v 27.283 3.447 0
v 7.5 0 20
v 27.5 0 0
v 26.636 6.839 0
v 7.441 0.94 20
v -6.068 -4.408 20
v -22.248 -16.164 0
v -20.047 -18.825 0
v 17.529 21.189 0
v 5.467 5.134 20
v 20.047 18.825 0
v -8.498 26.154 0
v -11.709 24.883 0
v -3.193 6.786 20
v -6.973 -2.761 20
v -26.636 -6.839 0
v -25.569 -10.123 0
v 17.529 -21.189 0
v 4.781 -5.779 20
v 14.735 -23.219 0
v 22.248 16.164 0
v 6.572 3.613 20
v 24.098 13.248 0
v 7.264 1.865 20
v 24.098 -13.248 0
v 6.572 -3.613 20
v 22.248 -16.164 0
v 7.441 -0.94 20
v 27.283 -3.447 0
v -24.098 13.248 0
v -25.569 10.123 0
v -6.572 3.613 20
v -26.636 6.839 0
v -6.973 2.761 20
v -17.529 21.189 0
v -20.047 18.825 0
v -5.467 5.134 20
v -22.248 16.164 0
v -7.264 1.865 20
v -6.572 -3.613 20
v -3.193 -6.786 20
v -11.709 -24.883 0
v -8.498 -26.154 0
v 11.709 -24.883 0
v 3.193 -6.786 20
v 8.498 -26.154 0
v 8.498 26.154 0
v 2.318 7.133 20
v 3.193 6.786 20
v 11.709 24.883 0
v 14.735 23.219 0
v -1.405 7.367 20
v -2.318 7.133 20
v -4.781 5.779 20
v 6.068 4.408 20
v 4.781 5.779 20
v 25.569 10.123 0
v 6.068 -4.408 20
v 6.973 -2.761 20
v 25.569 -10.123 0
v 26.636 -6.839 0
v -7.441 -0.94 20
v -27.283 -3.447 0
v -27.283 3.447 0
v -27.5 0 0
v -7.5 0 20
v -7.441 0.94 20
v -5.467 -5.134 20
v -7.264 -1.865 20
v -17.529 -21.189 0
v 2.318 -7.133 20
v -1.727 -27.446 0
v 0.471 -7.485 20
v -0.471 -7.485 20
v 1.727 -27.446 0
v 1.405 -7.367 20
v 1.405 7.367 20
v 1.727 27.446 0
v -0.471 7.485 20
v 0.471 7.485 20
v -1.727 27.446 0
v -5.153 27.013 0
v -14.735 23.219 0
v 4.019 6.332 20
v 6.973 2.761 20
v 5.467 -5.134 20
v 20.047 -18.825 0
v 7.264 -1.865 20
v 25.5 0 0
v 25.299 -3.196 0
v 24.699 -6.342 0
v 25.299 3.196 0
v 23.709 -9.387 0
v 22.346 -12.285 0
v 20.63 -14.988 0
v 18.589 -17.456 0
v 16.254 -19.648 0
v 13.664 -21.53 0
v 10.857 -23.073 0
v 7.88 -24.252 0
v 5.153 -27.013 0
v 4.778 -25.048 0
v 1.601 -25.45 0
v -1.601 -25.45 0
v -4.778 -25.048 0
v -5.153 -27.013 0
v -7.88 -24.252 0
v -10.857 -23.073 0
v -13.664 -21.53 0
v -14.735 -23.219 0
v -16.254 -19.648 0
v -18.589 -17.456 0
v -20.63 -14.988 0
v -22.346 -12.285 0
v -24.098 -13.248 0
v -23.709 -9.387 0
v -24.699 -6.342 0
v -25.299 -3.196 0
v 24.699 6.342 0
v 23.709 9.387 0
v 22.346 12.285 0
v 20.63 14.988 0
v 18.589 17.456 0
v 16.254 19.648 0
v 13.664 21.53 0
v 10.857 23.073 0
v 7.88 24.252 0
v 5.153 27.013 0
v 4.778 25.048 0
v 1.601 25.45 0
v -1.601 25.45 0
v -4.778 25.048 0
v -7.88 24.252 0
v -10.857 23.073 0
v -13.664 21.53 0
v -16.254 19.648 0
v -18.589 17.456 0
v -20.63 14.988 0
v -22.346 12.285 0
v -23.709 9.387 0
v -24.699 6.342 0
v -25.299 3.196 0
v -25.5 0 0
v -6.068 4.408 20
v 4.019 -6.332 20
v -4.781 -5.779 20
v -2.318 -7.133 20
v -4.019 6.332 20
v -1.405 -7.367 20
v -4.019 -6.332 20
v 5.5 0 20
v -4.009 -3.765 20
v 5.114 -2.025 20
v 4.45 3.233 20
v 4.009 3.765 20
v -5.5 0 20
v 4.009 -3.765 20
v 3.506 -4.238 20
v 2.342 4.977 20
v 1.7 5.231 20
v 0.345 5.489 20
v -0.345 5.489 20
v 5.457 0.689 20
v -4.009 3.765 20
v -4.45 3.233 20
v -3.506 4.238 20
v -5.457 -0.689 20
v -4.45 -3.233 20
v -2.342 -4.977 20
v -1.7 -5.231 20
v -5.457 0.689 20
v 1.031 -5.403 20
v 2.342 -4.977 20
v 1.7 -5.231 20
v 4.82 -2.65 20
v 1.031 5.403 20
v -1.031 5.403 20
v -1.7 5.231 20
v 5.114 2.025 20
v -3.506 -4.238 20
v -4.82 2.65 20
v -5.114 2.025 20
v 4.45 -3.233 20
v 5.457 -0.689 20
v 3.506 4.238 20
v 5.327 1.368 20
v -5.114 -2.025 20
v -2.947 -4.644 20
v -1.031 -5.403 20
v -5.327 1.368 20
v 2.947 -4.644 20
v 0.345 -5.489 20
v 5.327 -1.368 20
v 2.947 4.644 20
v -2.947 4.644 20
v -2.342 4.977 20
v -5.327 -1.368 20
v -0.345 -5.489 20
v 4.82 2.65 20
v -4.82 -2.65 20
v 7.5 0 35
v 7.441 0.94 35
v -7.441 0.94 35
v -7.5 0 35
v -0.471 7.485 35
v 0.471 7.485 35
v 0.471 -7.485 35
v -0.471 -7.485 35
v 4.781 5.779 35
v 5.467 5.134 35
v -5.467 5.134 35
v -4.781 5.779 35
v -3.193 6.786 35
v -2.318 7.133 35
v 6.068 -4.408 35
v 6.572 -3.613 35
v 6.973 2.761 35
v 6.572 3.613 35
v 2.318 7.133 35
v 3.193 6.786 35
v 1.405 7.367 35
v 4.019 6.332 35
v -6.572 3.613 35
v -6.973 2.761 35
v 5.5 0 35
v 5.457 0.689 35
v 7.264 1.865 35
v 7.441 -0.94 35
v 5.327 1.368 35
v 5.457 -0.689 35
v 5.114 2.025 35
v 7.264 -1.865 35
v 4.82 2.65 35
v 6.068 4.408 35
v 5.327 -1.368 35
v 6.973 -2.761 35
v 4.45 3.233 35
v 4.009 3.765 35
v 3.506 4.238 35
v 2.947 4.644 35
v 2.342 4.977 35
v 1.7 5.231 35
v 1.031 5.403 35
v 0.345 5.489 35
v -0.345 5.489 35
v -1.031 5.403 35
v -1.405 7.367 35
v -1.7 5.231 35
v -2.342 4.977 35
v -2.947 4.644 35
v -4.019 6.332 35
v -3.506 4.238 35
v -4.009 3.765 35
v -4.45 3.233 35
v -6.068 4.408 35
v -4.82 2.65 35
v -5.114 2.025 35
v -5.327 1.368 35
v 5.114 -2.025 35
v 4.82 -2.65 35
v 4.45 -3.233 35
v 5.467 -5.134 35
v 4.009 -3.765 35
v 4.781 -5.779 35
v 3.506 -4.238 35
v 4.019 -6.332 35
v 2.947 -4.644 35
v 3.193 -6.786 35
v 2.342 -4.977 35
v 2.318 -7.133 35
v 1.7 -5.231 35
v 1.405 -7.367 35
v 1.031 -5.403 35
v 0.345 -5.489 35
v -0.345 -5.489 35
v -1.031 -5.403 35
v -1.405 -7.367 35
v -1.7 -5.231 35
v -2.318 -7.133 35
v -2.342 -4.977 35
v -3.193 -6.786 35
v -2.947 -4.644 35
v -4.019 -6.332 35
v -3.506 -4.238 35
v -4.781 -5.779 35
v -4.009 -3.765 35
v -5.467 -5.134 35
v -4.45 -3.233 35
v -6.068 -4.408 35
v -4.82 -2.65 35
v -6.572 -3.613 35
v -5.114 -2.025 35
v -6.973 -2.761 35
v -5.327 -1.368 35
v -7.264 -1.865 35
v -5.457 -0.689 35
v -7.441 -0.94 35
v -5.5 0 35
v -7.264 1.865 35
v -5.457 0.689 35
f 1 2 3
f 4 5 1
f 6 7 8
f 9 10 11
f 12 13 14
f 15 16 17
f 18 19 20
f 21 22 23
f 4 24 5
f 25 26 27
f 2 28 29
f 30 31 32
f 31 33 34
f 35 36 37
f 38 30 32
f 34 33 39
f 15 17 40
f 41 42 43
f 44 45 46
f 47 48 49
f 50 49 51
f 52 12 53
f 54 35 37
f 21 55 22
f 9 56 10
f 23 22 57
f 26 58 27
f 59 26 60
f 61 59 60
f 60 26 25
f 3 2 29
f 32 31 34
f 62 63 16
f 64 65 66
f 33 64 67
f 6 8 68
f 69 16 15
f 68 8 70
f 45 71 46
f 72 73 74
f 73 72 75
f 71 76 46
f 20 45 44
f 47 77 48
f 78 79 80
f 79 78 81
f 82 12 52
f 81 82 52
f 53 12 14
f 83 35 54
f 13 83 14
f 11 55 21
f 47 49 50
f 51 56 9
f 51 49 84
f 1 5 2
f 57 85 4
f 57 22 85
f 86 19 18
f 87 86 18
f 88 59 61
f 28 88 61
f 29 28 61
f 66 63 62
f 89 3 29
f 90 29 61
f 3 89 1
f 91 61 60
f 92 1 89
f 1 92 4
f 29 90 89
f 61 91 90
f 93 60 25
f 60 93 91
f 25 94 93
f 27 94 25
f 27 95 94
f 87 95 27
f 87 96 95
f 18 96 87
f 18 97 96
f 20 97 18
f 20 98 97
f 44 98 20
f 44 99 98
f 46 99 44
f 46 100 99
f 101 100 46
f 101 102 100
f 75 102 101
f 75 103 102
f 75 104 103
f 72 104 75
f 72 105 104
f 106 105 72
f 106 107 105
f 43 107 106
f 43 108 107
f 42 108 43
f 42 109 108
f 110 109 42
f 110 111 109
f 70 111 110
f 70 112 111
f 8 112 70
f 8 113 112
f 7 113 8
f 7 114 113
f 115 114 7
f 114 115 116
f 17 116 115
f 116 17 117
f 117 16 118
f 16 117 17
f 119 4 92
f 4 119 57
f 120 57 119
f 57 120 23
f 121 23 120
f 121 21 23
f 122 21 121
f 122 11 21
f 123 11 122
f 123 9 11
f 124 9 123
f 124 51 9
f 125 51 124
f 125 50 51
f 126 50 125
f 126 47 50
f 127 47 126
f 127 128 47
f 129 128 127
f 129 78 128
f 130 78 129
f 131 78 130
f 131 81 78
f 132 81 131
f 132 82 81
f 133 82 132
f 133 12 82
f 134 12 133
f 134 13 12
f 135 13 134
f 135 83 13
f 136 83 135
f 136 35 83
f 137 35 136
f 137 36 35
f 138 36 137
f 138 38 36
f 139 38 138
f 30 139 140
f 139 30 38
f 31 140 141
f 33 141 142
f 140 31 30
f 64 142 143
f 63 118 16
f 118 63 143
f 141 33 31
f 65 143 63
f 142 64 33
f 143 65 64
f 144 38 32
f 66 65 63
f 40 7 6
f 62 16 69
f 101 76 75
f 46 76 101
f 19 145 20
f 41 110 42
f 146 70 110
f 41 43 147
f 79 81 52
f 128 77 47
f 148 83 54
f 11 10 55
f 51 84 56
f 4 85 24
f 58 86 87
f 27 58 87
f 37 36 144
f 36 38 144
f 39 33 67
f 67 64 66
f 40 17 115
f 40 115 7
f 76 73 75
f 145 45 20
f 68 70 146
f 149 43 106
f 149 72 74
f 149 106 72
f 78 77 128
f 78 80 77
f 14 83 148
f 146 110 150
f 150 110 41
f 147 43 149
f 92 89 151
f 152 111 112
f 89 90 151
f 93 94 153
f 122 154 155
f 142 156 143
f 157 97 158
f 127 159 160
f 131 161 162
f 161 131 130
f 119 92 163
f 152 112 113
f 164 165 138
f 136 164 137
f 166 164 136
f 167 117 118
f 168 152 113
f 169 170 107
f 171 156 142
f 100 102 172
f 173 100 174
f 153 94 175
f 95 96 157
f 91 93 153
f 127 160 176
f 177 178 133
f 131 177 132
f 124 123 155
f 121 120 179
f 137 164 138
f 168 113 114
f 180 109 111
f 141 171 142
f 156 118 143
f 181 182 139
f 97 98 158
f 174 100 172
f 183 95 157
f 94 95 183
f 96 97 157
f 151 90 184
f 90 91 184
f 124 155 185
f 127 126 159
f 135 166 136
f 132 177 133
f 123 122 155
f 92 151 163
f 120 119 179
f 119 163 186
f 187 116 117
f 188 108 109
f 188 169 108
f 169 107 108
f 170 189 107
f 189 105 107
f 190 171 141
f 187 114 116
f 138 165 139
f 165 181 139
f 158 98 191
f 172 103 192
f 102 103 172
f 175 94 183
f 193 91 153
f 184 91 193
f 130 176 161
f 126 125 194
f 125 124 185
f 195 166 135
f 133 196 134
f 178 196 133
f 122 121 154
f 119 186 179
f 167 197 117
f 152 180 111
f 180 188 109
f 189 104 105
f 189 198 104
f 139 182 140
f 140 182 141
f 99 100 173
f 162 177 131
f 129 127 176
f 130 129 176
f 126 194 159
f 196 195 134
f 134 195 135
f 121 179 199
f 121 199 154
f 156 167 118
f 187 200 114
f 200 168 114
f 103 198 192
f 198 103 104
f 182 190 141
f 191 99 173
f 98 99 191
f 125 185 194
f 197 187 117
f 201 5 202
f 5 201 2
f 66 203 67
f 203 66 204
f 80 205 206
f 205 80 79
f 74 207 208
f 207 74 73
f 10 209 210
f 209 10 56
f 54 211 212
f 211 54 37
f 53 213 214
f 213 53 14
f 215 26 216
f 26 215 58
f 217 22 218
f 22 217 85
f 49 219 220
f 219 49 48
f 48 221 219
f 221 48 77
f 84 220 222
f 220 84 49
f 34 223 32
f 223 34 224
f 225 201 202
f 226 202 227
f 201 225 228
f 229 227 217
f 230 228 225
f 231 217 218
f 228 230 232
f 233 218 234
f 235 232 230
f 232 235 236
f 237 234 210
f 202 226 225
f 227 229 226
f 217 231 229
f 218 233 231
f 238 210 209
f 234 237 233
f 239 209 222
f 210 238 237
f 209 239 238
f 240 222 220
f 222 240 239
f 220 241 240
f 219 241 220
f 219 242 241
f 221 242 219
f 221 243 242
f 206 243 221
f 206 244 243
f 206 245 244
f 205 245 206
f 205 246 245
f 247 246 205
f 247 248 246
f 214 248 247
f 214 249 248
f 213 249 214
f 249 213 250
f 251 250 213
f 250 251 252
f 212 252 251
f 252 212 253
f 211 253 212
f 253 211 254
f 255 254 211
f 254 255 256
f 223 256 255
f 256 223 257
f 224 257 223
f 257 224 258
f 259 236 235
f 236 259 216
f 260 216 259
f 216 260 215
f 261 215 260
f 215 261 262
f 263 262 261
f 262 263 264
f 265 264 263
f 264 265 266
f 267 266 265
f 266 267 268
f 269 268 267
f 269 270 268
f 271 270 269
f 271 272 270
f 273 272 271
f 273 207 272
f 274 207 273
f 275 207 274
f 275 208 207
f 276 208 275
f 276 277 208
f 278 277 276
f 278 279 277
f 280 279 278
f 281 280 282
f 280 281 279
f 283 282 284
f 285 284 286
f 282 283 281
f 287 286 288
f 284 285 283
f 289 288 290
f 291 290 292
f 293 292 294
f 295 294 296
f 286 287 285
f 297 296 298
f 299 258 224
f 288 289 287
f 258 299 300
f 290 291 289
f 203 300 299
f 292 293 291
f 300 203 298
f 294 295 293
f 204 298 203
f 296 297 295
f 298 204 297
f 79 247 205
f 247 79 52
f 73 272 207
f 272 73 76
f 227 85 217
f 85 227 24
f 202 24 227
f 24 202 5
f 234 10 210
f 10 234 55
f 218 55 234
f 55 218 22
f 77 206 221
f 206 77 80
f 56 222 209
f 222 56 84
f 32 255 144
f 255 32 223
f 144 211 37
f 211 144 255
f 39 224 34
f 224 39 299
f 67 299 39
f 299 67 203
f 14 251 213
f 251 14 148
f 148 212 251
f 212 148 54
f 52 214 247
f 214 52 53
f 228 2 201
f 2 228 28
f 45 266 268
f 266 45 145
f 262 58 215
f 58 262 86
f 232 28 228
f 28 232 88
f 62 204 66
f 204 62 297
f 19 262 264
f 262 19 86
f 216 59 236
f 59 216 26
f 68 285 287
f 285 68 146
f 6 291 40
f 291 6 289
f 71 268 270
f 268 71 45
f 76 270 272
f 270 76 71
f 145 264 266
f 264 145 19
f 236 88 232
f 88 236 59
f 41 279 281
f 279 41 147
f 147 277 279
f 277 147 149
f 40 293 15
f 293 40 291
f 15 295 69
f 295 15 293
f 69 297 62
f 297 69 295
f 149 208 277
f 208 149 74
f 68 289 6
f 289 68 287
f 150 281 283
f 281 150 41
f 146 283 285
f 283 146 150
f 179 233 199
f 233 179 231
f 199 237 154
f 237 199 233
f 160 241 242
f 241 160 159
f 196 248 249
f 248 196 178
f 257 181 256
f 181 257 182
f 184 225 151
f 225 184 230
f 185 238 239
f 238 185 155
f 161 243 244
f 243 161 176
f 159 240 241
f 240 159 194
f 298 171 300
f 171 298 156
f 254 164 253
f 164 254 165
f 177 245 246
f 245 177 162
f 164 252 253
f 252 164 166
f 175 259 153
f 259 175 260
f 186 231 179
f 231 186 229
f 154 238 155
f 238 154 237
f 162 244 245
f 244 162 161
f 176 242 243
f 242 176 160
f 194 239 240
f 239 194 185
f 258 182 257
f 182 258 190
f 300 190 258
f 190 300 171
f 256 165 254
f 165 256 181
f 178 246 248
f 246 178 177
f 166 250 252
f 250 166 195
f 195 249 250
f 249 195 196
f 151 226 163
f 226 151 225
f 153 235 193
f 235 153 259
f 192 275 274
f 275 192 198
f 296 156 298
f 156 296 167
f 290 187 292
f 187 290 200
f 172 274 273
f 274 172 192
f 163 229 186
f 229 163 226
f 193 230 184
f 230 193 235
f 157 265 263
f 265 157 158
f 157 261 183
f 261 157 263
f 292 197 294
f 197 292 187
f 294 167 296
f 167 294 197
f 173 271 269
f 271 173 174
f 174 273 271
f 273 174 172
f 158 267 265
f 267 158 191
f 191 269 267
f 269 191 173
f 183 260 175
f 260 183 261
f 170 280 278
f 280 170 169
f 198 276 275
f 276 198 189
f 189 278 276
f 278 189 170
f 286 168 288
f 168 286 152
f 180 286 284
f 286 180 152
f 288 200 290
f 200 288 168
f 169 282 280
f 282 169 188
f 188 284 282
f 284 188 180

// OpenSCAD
$fn = 50;


difference() {
	union() {
		translate(v = [0, 0, 0]) {
			rotate(a = [0, 0, 0]) {
				difference() {
					union() {
						cylinder(h = 20, r1 = 27.5000000000, r2 = 7.5000000000);
					}
					union() {
						cylinder(h = 20, r1 = 25.5000000000, r2 = 5.5000000000);
					}
				}
			}
		}
		translate(v = [0, 0, 20]) {
			rotate(a = [0, 0, 0]) {
				difference() {
					union() {
						cylinder(h = 15, r = 7.5000000000);
					}
					union() {
						cylinder(h = 15, r = 5.5000000000);
					}
				}
			}
		}
	}
	union();
}
